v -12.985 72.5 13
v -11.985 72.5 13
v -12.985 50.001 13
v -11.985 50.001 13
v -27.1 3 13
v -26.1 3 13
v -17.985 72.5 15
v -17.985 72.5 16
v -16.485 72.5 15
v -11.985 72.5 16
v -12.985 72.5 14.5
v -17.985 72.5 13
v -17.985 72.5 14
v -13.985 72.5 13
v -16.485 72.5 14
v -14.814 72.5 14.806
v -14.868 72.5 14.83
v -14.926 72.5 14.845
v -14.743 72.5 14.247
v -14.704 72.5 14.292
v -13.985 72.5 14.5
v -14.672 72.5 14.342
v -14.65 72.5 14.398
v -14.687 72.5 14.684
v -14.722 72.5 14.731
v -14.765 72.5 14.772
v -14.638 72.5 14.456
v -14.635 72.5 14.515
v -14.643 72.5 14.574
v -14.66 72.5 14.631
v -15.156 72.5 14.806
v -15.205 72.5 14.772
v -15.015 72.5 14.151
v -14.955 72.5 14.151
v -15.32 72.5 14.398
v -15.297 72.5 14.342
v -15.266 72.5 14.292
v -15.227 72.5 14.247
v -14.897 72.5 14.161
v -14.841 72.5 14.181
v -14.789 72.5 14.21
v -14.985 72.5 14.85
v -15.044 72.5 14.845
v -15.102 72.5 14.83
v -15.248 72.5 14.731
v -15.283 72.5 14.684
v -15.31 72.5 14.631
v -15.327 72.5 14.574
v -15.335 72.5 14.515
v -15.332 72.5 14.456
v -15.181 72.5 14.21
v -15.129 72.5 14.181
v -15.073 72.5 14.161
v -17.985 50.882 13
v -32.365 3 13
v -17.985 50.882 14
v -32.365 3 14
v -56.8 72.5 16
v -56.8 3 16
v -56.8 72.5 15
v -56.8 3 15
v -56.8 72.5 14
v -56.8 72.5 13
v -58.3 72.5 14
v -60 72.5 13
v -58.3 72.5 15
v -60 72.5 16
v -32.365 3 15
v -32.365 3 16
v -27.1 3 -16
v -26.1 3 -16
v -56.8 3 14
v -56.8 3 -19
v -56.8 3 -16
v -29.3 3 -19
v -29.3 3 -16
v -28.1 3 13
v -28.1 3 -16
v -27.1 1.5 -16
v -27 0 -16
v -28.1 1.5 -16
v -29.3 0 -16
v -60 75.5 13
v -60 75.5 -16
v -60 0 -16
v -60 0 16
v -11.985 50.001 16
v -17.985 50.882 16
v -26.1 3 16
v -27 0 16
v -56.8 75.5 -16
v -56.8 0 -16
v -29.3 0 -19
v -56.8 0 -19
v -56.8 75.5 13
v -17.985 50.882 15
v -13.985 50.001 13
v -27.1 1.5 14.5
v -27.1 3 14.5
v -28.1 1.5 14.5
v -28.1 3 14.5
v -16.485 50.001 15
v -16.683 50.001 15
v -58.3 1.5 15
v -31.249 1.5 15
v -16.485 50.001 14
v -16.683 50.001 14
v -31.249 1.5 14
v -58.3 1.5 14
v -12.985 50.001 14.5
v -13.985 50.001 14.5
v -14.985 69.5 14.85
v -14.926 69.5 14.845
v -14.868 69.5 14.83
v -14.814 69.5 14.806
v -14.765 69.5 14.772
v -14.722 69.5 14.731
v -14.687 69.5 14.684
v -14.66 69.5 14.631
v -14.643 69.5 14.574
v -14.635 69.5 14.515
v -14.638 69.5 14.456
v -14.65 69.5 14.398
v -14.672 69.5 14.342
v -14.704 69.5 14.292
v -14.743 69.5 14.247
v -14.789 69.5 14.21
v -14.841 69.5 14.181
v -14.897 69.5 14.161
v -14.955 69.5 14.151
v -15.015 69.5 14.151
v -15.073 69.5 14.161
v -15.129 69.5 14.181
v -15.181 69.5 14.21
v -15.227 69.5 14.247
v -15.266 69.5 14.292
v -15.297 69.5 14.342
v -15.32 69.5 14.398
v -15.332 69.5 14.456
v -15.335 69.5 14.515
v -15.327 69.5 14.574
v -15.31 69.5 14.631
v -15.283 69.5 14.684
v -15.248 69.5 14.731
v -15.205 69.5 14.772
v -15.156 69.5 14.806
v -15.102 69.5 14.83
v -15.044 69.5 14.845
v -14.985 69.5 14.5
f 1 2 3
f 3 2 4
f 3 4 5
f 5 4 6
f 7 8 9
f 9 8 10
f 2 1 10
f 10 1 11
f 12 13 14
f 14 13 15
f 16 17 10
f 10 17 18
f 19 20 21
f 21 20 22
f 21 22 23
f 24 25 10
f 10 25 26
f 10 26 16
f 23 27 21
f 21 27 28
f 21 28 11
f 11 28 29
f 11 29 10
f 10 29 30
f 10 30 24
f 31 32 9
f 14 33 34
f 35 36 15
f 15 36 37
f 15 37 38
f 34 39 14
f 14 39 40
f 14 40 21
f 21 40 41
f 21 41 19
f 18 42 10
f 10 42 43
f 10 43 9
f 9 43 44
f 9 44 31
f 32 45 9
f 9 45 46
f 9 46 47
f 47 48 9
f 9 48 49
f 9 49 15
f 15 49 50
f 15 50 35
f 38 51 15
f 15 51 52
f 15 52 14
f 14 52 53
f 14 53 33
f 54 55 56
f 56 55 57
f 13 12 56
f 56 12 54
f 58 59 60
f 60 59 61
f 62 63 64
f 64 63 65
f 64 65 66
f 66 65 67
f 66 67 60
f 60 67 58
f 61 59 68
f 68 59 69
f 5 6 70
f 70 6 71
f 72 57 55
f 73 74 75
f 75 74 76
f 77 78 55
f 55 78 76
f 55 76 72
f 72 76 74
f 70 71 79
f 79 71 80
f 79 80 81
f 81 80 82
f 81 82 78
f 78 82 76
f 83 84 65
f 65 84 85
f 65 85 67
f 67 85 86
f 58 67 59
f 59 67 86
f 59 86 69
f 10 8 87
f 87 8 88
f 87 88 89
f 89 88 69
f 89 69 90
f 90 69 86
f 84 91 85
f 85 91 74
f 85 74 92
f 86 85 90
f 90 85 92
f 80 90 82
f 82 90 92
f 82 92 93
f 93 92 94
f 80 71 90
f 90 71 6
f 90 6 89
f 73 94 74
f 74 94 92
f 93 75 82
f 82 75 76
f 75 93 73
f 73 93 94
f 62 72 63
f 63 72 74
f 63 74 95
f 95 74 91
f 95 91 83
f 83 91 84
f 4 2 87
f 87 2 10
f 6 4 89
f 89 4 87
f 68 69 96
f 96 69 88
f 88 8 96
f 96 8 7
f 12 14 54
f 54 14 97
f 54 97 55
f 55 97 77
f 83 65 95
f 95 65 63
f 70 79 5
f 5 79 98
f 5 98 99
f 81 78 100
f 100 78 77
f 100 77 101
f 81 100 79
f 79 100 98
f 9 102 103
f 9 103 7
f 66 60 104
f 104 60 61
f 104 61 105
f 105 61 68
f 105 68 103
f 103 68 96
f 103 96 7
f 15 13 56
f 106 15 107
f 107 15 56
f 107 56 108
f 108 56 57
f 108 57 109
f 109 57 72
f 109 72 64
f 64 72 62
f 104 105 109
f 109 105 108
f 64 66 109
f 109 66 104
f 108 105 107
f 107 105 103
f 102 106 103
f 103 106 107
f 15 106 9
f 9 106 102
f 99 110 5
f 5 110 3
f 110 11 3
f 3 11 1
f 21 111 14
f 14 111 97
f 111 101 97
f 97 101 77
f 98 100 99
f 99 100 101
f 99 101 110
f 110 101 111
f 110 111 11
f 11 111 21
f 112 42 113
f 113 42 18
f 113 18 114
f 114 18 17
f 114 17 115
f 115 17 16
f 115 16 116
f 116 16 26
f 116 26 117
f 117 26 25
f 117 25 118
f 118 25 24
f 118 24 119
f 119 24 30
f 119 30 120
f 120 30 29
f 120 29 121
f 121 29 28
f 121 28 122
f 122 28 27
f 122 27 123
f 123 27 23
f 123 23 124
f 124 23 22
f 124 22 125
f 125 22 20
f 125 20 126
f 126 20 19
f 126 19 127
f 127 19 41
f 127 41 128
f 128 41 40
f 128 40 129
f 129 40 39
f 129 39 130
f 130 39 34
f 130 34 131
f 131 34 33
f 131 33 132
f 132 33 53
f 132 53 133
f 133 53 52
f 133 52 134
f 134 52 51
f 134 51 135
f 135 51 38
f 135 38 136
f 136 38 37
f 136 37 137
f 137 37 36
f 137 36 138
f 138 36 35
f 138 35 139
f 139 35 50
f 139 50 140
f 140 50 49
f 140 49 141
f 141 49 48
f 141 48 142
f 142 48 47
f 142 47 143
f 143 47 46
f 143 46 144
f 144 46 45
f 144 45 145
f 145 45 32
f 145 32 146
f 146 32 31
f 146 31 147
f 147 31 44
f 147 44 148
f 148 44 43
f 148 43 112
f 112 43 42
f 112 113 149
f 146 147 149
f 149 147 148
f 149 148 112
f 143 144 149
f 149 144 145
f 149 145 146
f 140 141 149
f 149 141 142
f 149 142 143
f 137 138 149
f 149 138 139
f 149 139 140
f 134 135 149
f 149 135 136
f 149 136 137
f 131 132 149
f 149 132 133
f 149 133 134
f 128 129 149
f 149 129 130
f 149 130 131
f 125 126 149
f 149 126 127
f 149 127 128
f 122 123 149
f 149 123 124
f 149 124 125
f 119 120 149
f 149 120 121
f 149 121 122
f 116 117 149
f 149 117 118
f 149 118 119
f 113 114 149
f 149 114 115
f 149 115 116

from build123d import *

# Parameters (mm, degrees)
SKETCH_1_W          = 120
SKETCH_1_H          = 32
EXTRUDE_1_DEPTH     = 3
CUT_EXTRUDE_1_DEPTH = 69.066144301
SKETCH_2_3_W        = 27.5
SKETCH_2_3_H        = 3
EXTRUDE_2_DEPTH     = 3
SKETCH_3_W          = 3.2
SKETCH_3_H          = 32
EXTRUDE_3_DEPTH     = 72.5
EXTRUDE_4_DEPTH     = 3
SKETCH_5_W          = 3
SKETCH_5_H          = 3
CUT_EXTRUDE_2_DEPTH = 90.831181838
SKETCH_6_W          = 24.435270894
SKETCH_6_H          = 1
SKETCH_6_W_2        = 1
SKETCH_6_H_2        = 29
CUT_EXTRUDE_3_DEPTH = 1.5
SKETCH_7_W          = 1
SKETCH_7_H          = 71
CUT_EXTRUDE_4_DEPTH = 1.5
CUT_EXTRUDE_6_REACH = 91.831
SKETCH_7_5_W        = 1
SKETCH_7_5_H        = 22.499258378
CUT_EXTRUDE_7_DEPTH = 40.31507816
CUT_EXTRUDE_8_DEPTH = 1.5
SKETCH_10_R         = 0.35
CUT_EXTRUDE_9_DEPTH = 3


with BuildPart() as part:
    # 草图1 → 凸台-拉伸1 (new body)
    with BuildSketch(Plane(origin=(0, 0, 0), x_dir=(1, 0, 0), z_dir=(0, 1, 0))):
        Rectangle(SKETCH_1_W, SKETCH_1_H)
    extrude(amount=EXTRUDE_1_DEPTH)

    # 草图2 → 切除-拉伸1 (cut, through all)
    with BuildSketch(Plane(origin=(0, 0, -16), x_dir=(-1, 0, 0), z_dir=(0, 0, -1))):
        Polygon((-60, 0), (27, 0), (26.1, 3), (-60, 3), align=None)
    extrude(amount=-CUT_EXTRUDE_1_DEPTH, mode=Mode.SUBTRACT)

    # 草图2<3> → 凸台-拉伸2 (add)
    with BuildSketch(Plane(origin=(0, 0, -16), x_dir=(-1, 0, 0), z_dir=(0, 0, -1))):
        with Locations((43.05, 1.5)):
            Rectangle(SKETCH_2_3_W, SKETCH_2_3_H)
    extrude(amount=EXTRUDE_2_DEPTH)

    # 草图3 → 凸台-拉伸3 (add)
    with BuildSketch(Plane(origin=(0, 3, 0), x_dir=(1, 0, 0), z_dir=(0, 1, 0))):
        with Locations((-58.4, 0)):
            Rectangle(SKETCH_3_W, SKETCH_3_H)
    extrude(amount=EXTRUDE_3_DEPTH)

    # 草图4 → 凸台-拉伸4 (add)
    with BuildSketch(Plane.XY.offset(16)):
        Polygon((-11.98492184, 50.000741622), (-11.98492184, 72.5), (-17.98492184, 72.5), (-17.98492184, 50.882243247), (-32.364729106, 3), (-26.1, 3), align=None)
    extrude(amount=-EXTRUDE_4_DEPTH)

    # 草图5 → 切除-拉伸2 (cut, through all)
    with BuildSketch(Plane(origin=(-56.8, 0, 0), x_dir=(0, 0, -1), z_dir=(1, 0, 0))):
        with Locations((-14.5, 74)):
            Rectangle(SKETCH_5_W, SKETCH_5_H)
    extrude(amount=-CUT_EXTRUDE_2_DEPTH, mode=Mode.SUBTRACT)

    # 草图6 → 切除-拉伸3 (cut)
    with BuildSketch(Plane(origin=(0, 3, 0), x_dir=(1, 0, 0), z_dir=(0, 1, 0))):
        with Locations((-44.582364553, -14.5)):
            Rectangle(SKETCH_6_W, SKETCH_6_H)
        with Locations((-27.6, 1.5)):
            Rectangle(SKETCH_6_W_2, SKETCH_6_H_2)
    extrude(amount=-CUT_EXTRUDE_3_DEPTH, mode=Mode.SUBTRACT)

    # 草图7 → 切除-拉伸4 (cut)
    with BuildSketch(Plane(origin=(-56.8, 0, 0), x_dir=(0, 0, -1), z_dir=(1, 0, 0))):
        with Locations((-14.5, 37)):
            Rectangle(SKETCH_7_W, SKETCH_7_H)
    extrude(amount=-CUT_EXTRUDE_4_DEPTH, mode=Mode.SUBTRACT)

    # 切除-拉伸6: up to this plane
    cut_extrude_6_end = Plane(origin=(-29.077043909, 8.732303646, 13), z_dir=(0.9577429283961915, -0.2876255953615531, 0))
    # 草图7<4> → 切除-拉伸6 (cut, up to the surface)
    with BuildSketch(Plane(origin=(-56.8, 0, 0), x_dir=(0, 0, -1), z_dir=(1, 0, 0)), mode=Mode.PRIVATE) as cut_extrude_6_sk1:
        Polygon((-15, 3), (-15, 1.5), (-14, 1.5), (-14, 3), (-14, 50.000741622), (-15, 50.000741622), align=None)
    cut_extrude_6_tool1 = split(extrude(cut_extrude_6_sk1.sketch, amount=CUT_EXTRUDE_6_REACH, mode=Mode.PRIVATE), bisect_by=cut_extrude_6_end, keep=Keep.BOTH, mode=Mode.PRIVATE)
    add(cut_extrude_6_tool1.solids().sort_by_distance((-56.8, 25.750371, 14.5))[0], mode=Mode.SUBTRACT)

    # 草图7<5> → 切除-拉伸7 (cut)
    with BuildSketch(Plane(origin=(-56.8, 0, 0), x_dir=(0, 0, -1), z_dir=(1, 0, 0))):
        with Locations((-14.5, 61.250370811)):
            Rectangle(SKETCH_7_5_W, SKETCH_7_5_H)
    extrude(amount=CUT_EXTRUDE_7_DEPTH, mode=Mode.SUBTRACT)

    # 草图9 → 切除-拉伸8 (cut)
    with BuildSketch(Plane(origin=(0, 0, 13), x_dir=(-1, 0, 0), z_dir=(0, 0, -1))):
        Polygon((28.1, 1.5), (27.1, 1.5), (27.1, 3), (12.98492184, 50.000741622), (12.98492184, 72.5), (13.98492184, 72.5), (13.98492184, 50.000741622), (28.1, 3), align=None)
    extrude(amount=-CUT_EXTRUDE_8_DEPTH, mode=Mode.SUBTRACT)

    # 草图10 → 切除-拉伸9 (cut)
    with BuildSketch(Plane(origin=(0, 72.5, 0), x_dir=(1, 0, 0), z_dir=(0, 1, 0))):
        with Locations(Location((-14.98492184, -14.5, 0), (0, 0, 270))):
            Circle(SKETCH_10_R)
    extrude(amount=-CUT_EXTRUDE_9_DEPTH, mode=Mode.SUBTRACT)


solid = part.part
